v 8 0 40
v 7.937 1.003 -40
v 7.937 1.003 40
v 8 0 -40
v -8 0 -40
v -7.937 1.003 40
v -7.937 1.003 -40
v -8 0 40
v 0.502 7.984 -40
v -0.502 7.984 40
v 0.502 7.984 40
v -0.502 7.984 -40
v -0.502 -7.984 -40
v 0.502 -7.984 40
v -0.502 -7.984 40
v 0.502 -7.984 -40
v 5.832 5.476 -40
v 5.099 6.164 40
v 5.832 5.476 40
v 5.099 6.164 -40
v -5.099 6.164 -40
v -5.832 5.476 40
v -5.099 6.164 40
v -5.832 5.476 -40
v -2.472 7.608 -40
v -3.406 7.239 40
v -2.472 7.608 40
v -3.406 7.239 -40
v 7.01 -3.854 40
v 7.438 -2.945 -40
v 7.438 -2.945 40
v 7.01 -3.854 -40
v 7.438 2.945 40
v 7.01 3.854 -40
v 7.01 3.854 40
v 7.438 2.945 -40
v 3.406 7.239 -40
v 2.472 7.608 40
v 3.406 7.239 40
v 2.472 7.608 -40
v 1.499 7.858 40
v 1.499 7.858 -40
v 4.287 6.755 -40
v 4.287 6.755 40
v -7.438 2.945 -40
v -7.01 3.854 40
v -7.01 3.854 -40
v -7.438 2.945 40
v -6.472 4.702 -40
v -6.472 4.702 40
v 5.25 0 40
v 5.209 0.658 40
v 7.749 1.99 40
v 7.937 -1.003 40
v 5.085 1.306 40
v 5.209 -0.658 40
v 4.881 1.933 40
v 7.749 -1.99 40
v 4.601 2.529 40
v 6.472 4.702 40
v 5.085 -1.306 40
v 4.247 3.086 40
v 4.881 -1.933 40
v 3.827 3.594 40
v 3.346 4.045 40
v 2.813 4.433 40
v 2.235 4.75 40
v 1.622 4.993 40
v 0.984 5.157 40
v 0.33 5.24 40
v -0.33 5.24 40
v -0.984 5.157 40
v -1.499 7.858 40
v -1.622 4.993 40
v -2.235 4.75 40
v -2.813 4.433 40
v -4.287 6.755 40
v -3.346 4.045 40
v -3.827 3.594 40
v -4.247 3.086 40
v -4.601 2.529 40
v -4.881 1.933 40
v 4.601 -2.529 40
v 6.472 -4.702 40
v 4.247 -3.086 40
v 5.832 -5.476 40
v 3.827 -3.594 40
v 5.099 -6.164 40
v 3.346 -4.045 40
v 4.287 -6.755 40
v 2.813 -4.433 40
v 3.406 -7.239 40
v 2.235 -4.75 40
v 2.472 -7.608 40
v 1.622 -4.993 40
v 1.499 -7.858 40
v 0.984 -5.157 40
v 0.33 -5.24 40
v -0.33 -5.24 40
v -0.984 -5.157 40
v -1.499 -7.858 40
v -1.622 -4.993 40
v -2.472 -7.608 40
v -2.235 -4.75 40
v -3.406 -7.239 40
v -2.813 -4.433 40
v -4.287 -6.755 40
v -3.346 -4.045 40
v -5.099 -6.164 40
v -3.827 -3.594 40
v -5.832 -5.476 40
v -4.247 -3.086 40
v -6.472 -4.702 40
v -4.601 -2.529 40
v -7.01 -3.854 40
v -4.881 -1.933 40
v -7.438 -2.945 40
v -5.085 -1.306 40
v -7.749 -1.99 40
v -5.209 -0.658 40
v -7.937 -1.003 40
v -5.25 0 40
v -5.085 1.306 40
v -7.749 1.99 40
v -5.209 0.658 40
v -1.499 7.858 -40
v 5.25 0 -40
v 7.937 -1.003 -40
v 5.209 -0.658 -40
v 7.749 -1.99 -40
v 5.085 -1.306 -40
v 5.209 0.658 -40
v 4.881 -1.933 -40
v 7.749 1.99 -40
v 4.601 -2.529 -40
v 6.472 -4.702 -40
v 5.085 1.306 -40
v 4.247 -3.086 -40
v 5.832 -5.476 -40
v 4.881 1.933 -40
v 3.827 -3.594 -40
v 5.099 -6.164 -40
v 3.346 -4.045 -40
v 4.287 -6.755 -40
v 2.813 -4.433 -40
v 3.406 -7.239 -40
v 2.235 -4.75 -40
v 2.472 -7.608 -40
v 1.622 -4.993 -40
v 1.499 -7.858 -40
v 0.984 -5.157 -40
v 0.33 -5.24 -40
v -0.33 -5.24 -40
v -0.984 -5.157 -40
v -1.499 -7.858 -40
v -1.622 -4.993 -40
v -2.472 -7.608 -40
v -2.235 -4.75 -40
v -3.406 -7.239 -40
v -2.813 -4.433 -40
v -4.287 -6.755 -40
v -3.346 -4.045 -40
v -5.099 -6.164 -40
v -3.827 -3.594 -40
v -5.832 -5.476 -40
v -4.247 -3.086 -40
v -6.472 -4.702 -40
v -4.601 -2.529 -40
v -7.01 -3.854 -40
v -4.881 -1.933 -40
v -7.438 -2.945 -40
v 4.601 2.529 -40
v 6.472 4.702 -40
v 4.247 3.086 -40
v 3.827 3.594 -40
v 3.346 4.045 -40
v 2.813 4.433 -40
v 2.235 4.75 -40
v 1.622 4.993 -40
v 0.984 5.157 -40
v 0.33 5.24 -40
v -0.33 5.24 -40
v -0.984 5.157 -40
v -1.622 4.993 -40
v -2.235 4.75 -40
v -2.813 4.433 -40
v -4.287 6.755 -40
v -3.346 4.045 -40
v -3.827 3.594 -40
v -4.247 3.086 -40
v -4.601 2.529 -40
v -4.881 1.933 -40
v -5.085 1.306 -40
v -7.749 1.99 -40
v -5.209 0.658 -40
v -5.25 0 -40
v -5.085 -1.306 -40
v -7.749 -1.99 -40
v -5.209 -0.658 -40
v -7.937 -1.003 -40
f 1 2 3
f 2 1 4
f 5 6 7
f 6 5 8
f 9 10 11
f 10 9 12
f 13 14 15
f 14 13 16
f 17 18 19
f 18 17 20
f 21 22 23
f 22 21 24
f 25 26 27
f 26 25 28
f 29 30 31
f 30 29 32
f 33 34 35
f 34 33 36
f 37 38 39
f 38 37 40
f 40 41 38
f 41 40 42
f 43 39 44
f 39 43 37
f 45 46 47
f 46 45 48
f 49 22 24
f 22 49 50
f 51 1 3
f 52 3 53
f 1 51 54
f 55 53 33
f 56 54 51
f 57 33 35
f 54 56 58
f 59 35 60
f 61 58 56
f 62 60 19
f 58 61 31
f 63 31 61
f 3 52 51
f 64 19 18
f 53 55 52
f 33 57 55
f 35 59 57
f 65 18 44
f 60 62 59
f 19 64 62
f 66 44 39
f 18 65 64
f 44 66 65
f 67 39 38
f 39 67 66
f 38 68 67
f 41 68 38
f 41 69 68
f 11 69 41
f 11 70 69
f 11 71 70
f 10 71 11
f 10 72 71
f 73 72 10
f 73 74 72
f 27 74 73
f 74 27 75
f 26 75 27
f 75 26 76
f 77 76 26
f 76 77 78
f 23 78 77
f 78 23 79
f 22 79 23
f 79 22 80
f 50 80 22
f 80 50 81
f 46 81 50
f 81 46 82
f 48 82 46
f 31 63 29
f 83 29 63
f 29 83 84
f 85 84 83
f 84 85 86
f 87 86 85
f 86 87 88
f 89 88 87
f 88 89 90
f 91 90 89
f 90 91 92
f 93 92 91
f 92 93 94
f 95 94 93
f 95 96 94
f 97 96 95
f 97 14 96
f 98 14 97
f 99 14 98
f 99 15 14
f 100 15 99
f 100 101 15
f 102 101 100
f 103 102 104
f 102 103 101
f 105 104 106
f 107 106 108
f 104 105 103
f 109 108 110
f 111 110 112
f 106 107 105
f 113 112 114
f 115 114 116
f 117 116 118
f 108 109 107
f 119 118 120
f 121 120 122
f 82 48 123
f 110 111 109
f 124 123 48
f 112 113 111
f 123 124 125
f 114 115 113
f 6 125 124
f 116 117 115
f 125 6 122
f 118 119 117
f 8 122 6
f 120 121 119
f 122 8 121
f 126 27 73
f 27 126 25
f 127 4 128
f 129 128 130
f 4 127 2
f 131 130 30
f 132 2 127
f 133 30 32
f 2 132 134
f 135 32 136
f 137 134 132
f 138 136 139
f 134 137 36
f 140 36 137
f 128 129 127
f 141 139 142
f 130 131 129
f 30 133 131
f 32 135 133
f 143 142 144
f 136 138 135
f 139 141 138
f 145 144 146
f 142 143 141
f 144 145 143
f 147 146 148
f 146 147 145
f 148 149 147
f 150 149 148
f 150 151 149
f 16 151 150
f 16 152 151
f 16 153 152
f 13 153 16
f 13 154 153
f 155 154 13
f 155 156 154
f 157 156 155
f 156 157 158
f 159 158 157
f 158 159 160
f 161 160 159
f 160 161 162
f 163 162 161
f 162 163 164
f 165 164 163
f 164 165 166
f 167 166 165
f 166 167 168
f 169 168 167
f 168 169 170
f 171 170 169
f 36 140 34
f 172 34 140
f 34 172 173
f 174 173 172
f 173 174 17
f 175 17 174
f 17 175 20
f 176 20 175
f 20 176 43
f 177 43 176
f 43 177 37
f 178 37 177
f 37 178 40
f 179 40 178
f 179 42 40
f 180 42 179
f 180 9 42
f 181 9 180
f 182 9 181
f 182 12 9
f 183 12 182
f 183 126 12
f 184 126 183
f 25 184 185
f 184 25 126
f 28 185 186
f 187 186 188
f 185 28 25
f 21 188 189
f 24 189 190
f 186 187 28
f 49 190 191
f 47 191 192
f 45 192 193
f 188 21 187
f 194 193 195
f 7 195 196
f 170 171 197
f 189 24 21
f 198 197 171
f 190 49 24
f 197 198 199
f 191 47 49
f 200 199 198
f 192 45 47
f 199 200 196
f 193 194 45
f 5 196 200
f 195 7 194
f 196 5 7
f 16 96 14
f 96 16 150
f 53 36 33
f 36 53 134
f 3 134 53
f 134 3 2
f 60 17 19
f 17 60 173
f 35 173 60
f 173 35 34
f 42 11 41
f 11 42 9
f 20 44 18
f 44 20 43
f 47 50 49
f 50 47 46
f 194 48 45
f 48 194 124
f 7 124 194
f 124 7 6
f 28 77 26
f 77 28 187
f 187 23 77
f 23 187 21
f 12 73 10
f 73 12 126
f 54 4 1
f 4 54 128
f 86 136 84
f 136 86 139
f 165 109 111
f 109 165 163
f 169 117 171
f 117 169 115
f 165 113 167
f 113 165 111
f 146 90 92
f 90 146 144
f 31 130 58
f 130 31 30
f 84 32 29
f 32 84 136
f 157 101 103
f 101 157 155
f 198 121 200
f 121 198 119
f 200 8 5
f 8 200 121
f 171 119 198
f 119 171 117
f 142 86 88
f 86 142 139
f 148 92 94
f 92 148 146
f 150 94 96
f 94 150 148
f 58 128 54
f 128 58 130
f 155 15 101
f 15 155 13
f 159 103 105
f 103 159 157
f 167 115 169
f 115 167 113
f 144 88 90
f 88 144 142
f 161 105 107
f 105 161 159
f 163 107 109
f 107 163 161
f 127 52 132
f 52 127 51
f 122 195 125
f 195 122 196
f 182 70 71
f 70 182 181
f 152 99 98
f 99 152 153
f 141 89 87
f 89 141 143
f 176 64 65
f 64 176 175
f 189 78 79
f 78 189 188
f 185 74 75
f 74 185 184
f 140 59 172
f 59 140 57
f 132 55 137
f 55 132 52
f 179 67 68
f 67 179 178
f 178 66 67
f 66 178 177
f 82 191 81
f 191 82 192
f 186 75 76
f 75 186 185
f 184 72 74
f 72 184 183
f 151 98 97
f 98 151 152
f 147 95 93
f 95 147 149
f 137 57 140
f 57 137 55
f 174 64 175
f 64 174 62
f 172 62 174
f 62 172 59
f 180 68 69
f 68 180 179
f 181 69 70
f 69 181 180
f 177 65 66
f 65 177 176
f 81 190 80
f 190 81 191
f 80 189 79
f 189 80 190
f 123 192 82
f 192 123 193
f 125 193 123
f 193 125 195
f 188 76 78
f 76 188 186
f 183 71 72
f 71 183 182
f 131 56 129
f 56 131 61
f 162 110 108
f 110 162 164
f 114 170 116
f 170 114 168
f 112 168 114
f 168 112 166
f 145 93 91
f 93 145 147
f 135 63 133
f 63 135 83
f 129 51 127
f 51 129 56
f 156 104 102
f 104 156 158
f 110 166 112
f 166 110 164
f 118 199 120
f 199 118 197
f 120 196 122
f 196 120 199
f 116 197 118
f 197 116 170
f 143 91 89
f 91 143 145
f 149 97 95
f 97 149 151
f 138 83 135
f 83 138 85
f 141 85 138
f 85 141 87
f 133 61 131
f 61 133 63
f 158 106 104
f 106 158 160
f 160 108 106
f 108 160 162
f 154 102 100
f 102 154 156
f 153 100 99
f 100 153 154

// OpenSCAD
$fn = 50;


difference() {
	union() {
		translate(v = [0, 0, -40.0000000000]) {
			cylinder(h = 80, r = 8.0000000000);
		}
	}
	union() {
		translate(v = [0, 0, -100.0000000000]) {
			cylinder(h = 200, r = 5.2500000000);
		}
	}
}
